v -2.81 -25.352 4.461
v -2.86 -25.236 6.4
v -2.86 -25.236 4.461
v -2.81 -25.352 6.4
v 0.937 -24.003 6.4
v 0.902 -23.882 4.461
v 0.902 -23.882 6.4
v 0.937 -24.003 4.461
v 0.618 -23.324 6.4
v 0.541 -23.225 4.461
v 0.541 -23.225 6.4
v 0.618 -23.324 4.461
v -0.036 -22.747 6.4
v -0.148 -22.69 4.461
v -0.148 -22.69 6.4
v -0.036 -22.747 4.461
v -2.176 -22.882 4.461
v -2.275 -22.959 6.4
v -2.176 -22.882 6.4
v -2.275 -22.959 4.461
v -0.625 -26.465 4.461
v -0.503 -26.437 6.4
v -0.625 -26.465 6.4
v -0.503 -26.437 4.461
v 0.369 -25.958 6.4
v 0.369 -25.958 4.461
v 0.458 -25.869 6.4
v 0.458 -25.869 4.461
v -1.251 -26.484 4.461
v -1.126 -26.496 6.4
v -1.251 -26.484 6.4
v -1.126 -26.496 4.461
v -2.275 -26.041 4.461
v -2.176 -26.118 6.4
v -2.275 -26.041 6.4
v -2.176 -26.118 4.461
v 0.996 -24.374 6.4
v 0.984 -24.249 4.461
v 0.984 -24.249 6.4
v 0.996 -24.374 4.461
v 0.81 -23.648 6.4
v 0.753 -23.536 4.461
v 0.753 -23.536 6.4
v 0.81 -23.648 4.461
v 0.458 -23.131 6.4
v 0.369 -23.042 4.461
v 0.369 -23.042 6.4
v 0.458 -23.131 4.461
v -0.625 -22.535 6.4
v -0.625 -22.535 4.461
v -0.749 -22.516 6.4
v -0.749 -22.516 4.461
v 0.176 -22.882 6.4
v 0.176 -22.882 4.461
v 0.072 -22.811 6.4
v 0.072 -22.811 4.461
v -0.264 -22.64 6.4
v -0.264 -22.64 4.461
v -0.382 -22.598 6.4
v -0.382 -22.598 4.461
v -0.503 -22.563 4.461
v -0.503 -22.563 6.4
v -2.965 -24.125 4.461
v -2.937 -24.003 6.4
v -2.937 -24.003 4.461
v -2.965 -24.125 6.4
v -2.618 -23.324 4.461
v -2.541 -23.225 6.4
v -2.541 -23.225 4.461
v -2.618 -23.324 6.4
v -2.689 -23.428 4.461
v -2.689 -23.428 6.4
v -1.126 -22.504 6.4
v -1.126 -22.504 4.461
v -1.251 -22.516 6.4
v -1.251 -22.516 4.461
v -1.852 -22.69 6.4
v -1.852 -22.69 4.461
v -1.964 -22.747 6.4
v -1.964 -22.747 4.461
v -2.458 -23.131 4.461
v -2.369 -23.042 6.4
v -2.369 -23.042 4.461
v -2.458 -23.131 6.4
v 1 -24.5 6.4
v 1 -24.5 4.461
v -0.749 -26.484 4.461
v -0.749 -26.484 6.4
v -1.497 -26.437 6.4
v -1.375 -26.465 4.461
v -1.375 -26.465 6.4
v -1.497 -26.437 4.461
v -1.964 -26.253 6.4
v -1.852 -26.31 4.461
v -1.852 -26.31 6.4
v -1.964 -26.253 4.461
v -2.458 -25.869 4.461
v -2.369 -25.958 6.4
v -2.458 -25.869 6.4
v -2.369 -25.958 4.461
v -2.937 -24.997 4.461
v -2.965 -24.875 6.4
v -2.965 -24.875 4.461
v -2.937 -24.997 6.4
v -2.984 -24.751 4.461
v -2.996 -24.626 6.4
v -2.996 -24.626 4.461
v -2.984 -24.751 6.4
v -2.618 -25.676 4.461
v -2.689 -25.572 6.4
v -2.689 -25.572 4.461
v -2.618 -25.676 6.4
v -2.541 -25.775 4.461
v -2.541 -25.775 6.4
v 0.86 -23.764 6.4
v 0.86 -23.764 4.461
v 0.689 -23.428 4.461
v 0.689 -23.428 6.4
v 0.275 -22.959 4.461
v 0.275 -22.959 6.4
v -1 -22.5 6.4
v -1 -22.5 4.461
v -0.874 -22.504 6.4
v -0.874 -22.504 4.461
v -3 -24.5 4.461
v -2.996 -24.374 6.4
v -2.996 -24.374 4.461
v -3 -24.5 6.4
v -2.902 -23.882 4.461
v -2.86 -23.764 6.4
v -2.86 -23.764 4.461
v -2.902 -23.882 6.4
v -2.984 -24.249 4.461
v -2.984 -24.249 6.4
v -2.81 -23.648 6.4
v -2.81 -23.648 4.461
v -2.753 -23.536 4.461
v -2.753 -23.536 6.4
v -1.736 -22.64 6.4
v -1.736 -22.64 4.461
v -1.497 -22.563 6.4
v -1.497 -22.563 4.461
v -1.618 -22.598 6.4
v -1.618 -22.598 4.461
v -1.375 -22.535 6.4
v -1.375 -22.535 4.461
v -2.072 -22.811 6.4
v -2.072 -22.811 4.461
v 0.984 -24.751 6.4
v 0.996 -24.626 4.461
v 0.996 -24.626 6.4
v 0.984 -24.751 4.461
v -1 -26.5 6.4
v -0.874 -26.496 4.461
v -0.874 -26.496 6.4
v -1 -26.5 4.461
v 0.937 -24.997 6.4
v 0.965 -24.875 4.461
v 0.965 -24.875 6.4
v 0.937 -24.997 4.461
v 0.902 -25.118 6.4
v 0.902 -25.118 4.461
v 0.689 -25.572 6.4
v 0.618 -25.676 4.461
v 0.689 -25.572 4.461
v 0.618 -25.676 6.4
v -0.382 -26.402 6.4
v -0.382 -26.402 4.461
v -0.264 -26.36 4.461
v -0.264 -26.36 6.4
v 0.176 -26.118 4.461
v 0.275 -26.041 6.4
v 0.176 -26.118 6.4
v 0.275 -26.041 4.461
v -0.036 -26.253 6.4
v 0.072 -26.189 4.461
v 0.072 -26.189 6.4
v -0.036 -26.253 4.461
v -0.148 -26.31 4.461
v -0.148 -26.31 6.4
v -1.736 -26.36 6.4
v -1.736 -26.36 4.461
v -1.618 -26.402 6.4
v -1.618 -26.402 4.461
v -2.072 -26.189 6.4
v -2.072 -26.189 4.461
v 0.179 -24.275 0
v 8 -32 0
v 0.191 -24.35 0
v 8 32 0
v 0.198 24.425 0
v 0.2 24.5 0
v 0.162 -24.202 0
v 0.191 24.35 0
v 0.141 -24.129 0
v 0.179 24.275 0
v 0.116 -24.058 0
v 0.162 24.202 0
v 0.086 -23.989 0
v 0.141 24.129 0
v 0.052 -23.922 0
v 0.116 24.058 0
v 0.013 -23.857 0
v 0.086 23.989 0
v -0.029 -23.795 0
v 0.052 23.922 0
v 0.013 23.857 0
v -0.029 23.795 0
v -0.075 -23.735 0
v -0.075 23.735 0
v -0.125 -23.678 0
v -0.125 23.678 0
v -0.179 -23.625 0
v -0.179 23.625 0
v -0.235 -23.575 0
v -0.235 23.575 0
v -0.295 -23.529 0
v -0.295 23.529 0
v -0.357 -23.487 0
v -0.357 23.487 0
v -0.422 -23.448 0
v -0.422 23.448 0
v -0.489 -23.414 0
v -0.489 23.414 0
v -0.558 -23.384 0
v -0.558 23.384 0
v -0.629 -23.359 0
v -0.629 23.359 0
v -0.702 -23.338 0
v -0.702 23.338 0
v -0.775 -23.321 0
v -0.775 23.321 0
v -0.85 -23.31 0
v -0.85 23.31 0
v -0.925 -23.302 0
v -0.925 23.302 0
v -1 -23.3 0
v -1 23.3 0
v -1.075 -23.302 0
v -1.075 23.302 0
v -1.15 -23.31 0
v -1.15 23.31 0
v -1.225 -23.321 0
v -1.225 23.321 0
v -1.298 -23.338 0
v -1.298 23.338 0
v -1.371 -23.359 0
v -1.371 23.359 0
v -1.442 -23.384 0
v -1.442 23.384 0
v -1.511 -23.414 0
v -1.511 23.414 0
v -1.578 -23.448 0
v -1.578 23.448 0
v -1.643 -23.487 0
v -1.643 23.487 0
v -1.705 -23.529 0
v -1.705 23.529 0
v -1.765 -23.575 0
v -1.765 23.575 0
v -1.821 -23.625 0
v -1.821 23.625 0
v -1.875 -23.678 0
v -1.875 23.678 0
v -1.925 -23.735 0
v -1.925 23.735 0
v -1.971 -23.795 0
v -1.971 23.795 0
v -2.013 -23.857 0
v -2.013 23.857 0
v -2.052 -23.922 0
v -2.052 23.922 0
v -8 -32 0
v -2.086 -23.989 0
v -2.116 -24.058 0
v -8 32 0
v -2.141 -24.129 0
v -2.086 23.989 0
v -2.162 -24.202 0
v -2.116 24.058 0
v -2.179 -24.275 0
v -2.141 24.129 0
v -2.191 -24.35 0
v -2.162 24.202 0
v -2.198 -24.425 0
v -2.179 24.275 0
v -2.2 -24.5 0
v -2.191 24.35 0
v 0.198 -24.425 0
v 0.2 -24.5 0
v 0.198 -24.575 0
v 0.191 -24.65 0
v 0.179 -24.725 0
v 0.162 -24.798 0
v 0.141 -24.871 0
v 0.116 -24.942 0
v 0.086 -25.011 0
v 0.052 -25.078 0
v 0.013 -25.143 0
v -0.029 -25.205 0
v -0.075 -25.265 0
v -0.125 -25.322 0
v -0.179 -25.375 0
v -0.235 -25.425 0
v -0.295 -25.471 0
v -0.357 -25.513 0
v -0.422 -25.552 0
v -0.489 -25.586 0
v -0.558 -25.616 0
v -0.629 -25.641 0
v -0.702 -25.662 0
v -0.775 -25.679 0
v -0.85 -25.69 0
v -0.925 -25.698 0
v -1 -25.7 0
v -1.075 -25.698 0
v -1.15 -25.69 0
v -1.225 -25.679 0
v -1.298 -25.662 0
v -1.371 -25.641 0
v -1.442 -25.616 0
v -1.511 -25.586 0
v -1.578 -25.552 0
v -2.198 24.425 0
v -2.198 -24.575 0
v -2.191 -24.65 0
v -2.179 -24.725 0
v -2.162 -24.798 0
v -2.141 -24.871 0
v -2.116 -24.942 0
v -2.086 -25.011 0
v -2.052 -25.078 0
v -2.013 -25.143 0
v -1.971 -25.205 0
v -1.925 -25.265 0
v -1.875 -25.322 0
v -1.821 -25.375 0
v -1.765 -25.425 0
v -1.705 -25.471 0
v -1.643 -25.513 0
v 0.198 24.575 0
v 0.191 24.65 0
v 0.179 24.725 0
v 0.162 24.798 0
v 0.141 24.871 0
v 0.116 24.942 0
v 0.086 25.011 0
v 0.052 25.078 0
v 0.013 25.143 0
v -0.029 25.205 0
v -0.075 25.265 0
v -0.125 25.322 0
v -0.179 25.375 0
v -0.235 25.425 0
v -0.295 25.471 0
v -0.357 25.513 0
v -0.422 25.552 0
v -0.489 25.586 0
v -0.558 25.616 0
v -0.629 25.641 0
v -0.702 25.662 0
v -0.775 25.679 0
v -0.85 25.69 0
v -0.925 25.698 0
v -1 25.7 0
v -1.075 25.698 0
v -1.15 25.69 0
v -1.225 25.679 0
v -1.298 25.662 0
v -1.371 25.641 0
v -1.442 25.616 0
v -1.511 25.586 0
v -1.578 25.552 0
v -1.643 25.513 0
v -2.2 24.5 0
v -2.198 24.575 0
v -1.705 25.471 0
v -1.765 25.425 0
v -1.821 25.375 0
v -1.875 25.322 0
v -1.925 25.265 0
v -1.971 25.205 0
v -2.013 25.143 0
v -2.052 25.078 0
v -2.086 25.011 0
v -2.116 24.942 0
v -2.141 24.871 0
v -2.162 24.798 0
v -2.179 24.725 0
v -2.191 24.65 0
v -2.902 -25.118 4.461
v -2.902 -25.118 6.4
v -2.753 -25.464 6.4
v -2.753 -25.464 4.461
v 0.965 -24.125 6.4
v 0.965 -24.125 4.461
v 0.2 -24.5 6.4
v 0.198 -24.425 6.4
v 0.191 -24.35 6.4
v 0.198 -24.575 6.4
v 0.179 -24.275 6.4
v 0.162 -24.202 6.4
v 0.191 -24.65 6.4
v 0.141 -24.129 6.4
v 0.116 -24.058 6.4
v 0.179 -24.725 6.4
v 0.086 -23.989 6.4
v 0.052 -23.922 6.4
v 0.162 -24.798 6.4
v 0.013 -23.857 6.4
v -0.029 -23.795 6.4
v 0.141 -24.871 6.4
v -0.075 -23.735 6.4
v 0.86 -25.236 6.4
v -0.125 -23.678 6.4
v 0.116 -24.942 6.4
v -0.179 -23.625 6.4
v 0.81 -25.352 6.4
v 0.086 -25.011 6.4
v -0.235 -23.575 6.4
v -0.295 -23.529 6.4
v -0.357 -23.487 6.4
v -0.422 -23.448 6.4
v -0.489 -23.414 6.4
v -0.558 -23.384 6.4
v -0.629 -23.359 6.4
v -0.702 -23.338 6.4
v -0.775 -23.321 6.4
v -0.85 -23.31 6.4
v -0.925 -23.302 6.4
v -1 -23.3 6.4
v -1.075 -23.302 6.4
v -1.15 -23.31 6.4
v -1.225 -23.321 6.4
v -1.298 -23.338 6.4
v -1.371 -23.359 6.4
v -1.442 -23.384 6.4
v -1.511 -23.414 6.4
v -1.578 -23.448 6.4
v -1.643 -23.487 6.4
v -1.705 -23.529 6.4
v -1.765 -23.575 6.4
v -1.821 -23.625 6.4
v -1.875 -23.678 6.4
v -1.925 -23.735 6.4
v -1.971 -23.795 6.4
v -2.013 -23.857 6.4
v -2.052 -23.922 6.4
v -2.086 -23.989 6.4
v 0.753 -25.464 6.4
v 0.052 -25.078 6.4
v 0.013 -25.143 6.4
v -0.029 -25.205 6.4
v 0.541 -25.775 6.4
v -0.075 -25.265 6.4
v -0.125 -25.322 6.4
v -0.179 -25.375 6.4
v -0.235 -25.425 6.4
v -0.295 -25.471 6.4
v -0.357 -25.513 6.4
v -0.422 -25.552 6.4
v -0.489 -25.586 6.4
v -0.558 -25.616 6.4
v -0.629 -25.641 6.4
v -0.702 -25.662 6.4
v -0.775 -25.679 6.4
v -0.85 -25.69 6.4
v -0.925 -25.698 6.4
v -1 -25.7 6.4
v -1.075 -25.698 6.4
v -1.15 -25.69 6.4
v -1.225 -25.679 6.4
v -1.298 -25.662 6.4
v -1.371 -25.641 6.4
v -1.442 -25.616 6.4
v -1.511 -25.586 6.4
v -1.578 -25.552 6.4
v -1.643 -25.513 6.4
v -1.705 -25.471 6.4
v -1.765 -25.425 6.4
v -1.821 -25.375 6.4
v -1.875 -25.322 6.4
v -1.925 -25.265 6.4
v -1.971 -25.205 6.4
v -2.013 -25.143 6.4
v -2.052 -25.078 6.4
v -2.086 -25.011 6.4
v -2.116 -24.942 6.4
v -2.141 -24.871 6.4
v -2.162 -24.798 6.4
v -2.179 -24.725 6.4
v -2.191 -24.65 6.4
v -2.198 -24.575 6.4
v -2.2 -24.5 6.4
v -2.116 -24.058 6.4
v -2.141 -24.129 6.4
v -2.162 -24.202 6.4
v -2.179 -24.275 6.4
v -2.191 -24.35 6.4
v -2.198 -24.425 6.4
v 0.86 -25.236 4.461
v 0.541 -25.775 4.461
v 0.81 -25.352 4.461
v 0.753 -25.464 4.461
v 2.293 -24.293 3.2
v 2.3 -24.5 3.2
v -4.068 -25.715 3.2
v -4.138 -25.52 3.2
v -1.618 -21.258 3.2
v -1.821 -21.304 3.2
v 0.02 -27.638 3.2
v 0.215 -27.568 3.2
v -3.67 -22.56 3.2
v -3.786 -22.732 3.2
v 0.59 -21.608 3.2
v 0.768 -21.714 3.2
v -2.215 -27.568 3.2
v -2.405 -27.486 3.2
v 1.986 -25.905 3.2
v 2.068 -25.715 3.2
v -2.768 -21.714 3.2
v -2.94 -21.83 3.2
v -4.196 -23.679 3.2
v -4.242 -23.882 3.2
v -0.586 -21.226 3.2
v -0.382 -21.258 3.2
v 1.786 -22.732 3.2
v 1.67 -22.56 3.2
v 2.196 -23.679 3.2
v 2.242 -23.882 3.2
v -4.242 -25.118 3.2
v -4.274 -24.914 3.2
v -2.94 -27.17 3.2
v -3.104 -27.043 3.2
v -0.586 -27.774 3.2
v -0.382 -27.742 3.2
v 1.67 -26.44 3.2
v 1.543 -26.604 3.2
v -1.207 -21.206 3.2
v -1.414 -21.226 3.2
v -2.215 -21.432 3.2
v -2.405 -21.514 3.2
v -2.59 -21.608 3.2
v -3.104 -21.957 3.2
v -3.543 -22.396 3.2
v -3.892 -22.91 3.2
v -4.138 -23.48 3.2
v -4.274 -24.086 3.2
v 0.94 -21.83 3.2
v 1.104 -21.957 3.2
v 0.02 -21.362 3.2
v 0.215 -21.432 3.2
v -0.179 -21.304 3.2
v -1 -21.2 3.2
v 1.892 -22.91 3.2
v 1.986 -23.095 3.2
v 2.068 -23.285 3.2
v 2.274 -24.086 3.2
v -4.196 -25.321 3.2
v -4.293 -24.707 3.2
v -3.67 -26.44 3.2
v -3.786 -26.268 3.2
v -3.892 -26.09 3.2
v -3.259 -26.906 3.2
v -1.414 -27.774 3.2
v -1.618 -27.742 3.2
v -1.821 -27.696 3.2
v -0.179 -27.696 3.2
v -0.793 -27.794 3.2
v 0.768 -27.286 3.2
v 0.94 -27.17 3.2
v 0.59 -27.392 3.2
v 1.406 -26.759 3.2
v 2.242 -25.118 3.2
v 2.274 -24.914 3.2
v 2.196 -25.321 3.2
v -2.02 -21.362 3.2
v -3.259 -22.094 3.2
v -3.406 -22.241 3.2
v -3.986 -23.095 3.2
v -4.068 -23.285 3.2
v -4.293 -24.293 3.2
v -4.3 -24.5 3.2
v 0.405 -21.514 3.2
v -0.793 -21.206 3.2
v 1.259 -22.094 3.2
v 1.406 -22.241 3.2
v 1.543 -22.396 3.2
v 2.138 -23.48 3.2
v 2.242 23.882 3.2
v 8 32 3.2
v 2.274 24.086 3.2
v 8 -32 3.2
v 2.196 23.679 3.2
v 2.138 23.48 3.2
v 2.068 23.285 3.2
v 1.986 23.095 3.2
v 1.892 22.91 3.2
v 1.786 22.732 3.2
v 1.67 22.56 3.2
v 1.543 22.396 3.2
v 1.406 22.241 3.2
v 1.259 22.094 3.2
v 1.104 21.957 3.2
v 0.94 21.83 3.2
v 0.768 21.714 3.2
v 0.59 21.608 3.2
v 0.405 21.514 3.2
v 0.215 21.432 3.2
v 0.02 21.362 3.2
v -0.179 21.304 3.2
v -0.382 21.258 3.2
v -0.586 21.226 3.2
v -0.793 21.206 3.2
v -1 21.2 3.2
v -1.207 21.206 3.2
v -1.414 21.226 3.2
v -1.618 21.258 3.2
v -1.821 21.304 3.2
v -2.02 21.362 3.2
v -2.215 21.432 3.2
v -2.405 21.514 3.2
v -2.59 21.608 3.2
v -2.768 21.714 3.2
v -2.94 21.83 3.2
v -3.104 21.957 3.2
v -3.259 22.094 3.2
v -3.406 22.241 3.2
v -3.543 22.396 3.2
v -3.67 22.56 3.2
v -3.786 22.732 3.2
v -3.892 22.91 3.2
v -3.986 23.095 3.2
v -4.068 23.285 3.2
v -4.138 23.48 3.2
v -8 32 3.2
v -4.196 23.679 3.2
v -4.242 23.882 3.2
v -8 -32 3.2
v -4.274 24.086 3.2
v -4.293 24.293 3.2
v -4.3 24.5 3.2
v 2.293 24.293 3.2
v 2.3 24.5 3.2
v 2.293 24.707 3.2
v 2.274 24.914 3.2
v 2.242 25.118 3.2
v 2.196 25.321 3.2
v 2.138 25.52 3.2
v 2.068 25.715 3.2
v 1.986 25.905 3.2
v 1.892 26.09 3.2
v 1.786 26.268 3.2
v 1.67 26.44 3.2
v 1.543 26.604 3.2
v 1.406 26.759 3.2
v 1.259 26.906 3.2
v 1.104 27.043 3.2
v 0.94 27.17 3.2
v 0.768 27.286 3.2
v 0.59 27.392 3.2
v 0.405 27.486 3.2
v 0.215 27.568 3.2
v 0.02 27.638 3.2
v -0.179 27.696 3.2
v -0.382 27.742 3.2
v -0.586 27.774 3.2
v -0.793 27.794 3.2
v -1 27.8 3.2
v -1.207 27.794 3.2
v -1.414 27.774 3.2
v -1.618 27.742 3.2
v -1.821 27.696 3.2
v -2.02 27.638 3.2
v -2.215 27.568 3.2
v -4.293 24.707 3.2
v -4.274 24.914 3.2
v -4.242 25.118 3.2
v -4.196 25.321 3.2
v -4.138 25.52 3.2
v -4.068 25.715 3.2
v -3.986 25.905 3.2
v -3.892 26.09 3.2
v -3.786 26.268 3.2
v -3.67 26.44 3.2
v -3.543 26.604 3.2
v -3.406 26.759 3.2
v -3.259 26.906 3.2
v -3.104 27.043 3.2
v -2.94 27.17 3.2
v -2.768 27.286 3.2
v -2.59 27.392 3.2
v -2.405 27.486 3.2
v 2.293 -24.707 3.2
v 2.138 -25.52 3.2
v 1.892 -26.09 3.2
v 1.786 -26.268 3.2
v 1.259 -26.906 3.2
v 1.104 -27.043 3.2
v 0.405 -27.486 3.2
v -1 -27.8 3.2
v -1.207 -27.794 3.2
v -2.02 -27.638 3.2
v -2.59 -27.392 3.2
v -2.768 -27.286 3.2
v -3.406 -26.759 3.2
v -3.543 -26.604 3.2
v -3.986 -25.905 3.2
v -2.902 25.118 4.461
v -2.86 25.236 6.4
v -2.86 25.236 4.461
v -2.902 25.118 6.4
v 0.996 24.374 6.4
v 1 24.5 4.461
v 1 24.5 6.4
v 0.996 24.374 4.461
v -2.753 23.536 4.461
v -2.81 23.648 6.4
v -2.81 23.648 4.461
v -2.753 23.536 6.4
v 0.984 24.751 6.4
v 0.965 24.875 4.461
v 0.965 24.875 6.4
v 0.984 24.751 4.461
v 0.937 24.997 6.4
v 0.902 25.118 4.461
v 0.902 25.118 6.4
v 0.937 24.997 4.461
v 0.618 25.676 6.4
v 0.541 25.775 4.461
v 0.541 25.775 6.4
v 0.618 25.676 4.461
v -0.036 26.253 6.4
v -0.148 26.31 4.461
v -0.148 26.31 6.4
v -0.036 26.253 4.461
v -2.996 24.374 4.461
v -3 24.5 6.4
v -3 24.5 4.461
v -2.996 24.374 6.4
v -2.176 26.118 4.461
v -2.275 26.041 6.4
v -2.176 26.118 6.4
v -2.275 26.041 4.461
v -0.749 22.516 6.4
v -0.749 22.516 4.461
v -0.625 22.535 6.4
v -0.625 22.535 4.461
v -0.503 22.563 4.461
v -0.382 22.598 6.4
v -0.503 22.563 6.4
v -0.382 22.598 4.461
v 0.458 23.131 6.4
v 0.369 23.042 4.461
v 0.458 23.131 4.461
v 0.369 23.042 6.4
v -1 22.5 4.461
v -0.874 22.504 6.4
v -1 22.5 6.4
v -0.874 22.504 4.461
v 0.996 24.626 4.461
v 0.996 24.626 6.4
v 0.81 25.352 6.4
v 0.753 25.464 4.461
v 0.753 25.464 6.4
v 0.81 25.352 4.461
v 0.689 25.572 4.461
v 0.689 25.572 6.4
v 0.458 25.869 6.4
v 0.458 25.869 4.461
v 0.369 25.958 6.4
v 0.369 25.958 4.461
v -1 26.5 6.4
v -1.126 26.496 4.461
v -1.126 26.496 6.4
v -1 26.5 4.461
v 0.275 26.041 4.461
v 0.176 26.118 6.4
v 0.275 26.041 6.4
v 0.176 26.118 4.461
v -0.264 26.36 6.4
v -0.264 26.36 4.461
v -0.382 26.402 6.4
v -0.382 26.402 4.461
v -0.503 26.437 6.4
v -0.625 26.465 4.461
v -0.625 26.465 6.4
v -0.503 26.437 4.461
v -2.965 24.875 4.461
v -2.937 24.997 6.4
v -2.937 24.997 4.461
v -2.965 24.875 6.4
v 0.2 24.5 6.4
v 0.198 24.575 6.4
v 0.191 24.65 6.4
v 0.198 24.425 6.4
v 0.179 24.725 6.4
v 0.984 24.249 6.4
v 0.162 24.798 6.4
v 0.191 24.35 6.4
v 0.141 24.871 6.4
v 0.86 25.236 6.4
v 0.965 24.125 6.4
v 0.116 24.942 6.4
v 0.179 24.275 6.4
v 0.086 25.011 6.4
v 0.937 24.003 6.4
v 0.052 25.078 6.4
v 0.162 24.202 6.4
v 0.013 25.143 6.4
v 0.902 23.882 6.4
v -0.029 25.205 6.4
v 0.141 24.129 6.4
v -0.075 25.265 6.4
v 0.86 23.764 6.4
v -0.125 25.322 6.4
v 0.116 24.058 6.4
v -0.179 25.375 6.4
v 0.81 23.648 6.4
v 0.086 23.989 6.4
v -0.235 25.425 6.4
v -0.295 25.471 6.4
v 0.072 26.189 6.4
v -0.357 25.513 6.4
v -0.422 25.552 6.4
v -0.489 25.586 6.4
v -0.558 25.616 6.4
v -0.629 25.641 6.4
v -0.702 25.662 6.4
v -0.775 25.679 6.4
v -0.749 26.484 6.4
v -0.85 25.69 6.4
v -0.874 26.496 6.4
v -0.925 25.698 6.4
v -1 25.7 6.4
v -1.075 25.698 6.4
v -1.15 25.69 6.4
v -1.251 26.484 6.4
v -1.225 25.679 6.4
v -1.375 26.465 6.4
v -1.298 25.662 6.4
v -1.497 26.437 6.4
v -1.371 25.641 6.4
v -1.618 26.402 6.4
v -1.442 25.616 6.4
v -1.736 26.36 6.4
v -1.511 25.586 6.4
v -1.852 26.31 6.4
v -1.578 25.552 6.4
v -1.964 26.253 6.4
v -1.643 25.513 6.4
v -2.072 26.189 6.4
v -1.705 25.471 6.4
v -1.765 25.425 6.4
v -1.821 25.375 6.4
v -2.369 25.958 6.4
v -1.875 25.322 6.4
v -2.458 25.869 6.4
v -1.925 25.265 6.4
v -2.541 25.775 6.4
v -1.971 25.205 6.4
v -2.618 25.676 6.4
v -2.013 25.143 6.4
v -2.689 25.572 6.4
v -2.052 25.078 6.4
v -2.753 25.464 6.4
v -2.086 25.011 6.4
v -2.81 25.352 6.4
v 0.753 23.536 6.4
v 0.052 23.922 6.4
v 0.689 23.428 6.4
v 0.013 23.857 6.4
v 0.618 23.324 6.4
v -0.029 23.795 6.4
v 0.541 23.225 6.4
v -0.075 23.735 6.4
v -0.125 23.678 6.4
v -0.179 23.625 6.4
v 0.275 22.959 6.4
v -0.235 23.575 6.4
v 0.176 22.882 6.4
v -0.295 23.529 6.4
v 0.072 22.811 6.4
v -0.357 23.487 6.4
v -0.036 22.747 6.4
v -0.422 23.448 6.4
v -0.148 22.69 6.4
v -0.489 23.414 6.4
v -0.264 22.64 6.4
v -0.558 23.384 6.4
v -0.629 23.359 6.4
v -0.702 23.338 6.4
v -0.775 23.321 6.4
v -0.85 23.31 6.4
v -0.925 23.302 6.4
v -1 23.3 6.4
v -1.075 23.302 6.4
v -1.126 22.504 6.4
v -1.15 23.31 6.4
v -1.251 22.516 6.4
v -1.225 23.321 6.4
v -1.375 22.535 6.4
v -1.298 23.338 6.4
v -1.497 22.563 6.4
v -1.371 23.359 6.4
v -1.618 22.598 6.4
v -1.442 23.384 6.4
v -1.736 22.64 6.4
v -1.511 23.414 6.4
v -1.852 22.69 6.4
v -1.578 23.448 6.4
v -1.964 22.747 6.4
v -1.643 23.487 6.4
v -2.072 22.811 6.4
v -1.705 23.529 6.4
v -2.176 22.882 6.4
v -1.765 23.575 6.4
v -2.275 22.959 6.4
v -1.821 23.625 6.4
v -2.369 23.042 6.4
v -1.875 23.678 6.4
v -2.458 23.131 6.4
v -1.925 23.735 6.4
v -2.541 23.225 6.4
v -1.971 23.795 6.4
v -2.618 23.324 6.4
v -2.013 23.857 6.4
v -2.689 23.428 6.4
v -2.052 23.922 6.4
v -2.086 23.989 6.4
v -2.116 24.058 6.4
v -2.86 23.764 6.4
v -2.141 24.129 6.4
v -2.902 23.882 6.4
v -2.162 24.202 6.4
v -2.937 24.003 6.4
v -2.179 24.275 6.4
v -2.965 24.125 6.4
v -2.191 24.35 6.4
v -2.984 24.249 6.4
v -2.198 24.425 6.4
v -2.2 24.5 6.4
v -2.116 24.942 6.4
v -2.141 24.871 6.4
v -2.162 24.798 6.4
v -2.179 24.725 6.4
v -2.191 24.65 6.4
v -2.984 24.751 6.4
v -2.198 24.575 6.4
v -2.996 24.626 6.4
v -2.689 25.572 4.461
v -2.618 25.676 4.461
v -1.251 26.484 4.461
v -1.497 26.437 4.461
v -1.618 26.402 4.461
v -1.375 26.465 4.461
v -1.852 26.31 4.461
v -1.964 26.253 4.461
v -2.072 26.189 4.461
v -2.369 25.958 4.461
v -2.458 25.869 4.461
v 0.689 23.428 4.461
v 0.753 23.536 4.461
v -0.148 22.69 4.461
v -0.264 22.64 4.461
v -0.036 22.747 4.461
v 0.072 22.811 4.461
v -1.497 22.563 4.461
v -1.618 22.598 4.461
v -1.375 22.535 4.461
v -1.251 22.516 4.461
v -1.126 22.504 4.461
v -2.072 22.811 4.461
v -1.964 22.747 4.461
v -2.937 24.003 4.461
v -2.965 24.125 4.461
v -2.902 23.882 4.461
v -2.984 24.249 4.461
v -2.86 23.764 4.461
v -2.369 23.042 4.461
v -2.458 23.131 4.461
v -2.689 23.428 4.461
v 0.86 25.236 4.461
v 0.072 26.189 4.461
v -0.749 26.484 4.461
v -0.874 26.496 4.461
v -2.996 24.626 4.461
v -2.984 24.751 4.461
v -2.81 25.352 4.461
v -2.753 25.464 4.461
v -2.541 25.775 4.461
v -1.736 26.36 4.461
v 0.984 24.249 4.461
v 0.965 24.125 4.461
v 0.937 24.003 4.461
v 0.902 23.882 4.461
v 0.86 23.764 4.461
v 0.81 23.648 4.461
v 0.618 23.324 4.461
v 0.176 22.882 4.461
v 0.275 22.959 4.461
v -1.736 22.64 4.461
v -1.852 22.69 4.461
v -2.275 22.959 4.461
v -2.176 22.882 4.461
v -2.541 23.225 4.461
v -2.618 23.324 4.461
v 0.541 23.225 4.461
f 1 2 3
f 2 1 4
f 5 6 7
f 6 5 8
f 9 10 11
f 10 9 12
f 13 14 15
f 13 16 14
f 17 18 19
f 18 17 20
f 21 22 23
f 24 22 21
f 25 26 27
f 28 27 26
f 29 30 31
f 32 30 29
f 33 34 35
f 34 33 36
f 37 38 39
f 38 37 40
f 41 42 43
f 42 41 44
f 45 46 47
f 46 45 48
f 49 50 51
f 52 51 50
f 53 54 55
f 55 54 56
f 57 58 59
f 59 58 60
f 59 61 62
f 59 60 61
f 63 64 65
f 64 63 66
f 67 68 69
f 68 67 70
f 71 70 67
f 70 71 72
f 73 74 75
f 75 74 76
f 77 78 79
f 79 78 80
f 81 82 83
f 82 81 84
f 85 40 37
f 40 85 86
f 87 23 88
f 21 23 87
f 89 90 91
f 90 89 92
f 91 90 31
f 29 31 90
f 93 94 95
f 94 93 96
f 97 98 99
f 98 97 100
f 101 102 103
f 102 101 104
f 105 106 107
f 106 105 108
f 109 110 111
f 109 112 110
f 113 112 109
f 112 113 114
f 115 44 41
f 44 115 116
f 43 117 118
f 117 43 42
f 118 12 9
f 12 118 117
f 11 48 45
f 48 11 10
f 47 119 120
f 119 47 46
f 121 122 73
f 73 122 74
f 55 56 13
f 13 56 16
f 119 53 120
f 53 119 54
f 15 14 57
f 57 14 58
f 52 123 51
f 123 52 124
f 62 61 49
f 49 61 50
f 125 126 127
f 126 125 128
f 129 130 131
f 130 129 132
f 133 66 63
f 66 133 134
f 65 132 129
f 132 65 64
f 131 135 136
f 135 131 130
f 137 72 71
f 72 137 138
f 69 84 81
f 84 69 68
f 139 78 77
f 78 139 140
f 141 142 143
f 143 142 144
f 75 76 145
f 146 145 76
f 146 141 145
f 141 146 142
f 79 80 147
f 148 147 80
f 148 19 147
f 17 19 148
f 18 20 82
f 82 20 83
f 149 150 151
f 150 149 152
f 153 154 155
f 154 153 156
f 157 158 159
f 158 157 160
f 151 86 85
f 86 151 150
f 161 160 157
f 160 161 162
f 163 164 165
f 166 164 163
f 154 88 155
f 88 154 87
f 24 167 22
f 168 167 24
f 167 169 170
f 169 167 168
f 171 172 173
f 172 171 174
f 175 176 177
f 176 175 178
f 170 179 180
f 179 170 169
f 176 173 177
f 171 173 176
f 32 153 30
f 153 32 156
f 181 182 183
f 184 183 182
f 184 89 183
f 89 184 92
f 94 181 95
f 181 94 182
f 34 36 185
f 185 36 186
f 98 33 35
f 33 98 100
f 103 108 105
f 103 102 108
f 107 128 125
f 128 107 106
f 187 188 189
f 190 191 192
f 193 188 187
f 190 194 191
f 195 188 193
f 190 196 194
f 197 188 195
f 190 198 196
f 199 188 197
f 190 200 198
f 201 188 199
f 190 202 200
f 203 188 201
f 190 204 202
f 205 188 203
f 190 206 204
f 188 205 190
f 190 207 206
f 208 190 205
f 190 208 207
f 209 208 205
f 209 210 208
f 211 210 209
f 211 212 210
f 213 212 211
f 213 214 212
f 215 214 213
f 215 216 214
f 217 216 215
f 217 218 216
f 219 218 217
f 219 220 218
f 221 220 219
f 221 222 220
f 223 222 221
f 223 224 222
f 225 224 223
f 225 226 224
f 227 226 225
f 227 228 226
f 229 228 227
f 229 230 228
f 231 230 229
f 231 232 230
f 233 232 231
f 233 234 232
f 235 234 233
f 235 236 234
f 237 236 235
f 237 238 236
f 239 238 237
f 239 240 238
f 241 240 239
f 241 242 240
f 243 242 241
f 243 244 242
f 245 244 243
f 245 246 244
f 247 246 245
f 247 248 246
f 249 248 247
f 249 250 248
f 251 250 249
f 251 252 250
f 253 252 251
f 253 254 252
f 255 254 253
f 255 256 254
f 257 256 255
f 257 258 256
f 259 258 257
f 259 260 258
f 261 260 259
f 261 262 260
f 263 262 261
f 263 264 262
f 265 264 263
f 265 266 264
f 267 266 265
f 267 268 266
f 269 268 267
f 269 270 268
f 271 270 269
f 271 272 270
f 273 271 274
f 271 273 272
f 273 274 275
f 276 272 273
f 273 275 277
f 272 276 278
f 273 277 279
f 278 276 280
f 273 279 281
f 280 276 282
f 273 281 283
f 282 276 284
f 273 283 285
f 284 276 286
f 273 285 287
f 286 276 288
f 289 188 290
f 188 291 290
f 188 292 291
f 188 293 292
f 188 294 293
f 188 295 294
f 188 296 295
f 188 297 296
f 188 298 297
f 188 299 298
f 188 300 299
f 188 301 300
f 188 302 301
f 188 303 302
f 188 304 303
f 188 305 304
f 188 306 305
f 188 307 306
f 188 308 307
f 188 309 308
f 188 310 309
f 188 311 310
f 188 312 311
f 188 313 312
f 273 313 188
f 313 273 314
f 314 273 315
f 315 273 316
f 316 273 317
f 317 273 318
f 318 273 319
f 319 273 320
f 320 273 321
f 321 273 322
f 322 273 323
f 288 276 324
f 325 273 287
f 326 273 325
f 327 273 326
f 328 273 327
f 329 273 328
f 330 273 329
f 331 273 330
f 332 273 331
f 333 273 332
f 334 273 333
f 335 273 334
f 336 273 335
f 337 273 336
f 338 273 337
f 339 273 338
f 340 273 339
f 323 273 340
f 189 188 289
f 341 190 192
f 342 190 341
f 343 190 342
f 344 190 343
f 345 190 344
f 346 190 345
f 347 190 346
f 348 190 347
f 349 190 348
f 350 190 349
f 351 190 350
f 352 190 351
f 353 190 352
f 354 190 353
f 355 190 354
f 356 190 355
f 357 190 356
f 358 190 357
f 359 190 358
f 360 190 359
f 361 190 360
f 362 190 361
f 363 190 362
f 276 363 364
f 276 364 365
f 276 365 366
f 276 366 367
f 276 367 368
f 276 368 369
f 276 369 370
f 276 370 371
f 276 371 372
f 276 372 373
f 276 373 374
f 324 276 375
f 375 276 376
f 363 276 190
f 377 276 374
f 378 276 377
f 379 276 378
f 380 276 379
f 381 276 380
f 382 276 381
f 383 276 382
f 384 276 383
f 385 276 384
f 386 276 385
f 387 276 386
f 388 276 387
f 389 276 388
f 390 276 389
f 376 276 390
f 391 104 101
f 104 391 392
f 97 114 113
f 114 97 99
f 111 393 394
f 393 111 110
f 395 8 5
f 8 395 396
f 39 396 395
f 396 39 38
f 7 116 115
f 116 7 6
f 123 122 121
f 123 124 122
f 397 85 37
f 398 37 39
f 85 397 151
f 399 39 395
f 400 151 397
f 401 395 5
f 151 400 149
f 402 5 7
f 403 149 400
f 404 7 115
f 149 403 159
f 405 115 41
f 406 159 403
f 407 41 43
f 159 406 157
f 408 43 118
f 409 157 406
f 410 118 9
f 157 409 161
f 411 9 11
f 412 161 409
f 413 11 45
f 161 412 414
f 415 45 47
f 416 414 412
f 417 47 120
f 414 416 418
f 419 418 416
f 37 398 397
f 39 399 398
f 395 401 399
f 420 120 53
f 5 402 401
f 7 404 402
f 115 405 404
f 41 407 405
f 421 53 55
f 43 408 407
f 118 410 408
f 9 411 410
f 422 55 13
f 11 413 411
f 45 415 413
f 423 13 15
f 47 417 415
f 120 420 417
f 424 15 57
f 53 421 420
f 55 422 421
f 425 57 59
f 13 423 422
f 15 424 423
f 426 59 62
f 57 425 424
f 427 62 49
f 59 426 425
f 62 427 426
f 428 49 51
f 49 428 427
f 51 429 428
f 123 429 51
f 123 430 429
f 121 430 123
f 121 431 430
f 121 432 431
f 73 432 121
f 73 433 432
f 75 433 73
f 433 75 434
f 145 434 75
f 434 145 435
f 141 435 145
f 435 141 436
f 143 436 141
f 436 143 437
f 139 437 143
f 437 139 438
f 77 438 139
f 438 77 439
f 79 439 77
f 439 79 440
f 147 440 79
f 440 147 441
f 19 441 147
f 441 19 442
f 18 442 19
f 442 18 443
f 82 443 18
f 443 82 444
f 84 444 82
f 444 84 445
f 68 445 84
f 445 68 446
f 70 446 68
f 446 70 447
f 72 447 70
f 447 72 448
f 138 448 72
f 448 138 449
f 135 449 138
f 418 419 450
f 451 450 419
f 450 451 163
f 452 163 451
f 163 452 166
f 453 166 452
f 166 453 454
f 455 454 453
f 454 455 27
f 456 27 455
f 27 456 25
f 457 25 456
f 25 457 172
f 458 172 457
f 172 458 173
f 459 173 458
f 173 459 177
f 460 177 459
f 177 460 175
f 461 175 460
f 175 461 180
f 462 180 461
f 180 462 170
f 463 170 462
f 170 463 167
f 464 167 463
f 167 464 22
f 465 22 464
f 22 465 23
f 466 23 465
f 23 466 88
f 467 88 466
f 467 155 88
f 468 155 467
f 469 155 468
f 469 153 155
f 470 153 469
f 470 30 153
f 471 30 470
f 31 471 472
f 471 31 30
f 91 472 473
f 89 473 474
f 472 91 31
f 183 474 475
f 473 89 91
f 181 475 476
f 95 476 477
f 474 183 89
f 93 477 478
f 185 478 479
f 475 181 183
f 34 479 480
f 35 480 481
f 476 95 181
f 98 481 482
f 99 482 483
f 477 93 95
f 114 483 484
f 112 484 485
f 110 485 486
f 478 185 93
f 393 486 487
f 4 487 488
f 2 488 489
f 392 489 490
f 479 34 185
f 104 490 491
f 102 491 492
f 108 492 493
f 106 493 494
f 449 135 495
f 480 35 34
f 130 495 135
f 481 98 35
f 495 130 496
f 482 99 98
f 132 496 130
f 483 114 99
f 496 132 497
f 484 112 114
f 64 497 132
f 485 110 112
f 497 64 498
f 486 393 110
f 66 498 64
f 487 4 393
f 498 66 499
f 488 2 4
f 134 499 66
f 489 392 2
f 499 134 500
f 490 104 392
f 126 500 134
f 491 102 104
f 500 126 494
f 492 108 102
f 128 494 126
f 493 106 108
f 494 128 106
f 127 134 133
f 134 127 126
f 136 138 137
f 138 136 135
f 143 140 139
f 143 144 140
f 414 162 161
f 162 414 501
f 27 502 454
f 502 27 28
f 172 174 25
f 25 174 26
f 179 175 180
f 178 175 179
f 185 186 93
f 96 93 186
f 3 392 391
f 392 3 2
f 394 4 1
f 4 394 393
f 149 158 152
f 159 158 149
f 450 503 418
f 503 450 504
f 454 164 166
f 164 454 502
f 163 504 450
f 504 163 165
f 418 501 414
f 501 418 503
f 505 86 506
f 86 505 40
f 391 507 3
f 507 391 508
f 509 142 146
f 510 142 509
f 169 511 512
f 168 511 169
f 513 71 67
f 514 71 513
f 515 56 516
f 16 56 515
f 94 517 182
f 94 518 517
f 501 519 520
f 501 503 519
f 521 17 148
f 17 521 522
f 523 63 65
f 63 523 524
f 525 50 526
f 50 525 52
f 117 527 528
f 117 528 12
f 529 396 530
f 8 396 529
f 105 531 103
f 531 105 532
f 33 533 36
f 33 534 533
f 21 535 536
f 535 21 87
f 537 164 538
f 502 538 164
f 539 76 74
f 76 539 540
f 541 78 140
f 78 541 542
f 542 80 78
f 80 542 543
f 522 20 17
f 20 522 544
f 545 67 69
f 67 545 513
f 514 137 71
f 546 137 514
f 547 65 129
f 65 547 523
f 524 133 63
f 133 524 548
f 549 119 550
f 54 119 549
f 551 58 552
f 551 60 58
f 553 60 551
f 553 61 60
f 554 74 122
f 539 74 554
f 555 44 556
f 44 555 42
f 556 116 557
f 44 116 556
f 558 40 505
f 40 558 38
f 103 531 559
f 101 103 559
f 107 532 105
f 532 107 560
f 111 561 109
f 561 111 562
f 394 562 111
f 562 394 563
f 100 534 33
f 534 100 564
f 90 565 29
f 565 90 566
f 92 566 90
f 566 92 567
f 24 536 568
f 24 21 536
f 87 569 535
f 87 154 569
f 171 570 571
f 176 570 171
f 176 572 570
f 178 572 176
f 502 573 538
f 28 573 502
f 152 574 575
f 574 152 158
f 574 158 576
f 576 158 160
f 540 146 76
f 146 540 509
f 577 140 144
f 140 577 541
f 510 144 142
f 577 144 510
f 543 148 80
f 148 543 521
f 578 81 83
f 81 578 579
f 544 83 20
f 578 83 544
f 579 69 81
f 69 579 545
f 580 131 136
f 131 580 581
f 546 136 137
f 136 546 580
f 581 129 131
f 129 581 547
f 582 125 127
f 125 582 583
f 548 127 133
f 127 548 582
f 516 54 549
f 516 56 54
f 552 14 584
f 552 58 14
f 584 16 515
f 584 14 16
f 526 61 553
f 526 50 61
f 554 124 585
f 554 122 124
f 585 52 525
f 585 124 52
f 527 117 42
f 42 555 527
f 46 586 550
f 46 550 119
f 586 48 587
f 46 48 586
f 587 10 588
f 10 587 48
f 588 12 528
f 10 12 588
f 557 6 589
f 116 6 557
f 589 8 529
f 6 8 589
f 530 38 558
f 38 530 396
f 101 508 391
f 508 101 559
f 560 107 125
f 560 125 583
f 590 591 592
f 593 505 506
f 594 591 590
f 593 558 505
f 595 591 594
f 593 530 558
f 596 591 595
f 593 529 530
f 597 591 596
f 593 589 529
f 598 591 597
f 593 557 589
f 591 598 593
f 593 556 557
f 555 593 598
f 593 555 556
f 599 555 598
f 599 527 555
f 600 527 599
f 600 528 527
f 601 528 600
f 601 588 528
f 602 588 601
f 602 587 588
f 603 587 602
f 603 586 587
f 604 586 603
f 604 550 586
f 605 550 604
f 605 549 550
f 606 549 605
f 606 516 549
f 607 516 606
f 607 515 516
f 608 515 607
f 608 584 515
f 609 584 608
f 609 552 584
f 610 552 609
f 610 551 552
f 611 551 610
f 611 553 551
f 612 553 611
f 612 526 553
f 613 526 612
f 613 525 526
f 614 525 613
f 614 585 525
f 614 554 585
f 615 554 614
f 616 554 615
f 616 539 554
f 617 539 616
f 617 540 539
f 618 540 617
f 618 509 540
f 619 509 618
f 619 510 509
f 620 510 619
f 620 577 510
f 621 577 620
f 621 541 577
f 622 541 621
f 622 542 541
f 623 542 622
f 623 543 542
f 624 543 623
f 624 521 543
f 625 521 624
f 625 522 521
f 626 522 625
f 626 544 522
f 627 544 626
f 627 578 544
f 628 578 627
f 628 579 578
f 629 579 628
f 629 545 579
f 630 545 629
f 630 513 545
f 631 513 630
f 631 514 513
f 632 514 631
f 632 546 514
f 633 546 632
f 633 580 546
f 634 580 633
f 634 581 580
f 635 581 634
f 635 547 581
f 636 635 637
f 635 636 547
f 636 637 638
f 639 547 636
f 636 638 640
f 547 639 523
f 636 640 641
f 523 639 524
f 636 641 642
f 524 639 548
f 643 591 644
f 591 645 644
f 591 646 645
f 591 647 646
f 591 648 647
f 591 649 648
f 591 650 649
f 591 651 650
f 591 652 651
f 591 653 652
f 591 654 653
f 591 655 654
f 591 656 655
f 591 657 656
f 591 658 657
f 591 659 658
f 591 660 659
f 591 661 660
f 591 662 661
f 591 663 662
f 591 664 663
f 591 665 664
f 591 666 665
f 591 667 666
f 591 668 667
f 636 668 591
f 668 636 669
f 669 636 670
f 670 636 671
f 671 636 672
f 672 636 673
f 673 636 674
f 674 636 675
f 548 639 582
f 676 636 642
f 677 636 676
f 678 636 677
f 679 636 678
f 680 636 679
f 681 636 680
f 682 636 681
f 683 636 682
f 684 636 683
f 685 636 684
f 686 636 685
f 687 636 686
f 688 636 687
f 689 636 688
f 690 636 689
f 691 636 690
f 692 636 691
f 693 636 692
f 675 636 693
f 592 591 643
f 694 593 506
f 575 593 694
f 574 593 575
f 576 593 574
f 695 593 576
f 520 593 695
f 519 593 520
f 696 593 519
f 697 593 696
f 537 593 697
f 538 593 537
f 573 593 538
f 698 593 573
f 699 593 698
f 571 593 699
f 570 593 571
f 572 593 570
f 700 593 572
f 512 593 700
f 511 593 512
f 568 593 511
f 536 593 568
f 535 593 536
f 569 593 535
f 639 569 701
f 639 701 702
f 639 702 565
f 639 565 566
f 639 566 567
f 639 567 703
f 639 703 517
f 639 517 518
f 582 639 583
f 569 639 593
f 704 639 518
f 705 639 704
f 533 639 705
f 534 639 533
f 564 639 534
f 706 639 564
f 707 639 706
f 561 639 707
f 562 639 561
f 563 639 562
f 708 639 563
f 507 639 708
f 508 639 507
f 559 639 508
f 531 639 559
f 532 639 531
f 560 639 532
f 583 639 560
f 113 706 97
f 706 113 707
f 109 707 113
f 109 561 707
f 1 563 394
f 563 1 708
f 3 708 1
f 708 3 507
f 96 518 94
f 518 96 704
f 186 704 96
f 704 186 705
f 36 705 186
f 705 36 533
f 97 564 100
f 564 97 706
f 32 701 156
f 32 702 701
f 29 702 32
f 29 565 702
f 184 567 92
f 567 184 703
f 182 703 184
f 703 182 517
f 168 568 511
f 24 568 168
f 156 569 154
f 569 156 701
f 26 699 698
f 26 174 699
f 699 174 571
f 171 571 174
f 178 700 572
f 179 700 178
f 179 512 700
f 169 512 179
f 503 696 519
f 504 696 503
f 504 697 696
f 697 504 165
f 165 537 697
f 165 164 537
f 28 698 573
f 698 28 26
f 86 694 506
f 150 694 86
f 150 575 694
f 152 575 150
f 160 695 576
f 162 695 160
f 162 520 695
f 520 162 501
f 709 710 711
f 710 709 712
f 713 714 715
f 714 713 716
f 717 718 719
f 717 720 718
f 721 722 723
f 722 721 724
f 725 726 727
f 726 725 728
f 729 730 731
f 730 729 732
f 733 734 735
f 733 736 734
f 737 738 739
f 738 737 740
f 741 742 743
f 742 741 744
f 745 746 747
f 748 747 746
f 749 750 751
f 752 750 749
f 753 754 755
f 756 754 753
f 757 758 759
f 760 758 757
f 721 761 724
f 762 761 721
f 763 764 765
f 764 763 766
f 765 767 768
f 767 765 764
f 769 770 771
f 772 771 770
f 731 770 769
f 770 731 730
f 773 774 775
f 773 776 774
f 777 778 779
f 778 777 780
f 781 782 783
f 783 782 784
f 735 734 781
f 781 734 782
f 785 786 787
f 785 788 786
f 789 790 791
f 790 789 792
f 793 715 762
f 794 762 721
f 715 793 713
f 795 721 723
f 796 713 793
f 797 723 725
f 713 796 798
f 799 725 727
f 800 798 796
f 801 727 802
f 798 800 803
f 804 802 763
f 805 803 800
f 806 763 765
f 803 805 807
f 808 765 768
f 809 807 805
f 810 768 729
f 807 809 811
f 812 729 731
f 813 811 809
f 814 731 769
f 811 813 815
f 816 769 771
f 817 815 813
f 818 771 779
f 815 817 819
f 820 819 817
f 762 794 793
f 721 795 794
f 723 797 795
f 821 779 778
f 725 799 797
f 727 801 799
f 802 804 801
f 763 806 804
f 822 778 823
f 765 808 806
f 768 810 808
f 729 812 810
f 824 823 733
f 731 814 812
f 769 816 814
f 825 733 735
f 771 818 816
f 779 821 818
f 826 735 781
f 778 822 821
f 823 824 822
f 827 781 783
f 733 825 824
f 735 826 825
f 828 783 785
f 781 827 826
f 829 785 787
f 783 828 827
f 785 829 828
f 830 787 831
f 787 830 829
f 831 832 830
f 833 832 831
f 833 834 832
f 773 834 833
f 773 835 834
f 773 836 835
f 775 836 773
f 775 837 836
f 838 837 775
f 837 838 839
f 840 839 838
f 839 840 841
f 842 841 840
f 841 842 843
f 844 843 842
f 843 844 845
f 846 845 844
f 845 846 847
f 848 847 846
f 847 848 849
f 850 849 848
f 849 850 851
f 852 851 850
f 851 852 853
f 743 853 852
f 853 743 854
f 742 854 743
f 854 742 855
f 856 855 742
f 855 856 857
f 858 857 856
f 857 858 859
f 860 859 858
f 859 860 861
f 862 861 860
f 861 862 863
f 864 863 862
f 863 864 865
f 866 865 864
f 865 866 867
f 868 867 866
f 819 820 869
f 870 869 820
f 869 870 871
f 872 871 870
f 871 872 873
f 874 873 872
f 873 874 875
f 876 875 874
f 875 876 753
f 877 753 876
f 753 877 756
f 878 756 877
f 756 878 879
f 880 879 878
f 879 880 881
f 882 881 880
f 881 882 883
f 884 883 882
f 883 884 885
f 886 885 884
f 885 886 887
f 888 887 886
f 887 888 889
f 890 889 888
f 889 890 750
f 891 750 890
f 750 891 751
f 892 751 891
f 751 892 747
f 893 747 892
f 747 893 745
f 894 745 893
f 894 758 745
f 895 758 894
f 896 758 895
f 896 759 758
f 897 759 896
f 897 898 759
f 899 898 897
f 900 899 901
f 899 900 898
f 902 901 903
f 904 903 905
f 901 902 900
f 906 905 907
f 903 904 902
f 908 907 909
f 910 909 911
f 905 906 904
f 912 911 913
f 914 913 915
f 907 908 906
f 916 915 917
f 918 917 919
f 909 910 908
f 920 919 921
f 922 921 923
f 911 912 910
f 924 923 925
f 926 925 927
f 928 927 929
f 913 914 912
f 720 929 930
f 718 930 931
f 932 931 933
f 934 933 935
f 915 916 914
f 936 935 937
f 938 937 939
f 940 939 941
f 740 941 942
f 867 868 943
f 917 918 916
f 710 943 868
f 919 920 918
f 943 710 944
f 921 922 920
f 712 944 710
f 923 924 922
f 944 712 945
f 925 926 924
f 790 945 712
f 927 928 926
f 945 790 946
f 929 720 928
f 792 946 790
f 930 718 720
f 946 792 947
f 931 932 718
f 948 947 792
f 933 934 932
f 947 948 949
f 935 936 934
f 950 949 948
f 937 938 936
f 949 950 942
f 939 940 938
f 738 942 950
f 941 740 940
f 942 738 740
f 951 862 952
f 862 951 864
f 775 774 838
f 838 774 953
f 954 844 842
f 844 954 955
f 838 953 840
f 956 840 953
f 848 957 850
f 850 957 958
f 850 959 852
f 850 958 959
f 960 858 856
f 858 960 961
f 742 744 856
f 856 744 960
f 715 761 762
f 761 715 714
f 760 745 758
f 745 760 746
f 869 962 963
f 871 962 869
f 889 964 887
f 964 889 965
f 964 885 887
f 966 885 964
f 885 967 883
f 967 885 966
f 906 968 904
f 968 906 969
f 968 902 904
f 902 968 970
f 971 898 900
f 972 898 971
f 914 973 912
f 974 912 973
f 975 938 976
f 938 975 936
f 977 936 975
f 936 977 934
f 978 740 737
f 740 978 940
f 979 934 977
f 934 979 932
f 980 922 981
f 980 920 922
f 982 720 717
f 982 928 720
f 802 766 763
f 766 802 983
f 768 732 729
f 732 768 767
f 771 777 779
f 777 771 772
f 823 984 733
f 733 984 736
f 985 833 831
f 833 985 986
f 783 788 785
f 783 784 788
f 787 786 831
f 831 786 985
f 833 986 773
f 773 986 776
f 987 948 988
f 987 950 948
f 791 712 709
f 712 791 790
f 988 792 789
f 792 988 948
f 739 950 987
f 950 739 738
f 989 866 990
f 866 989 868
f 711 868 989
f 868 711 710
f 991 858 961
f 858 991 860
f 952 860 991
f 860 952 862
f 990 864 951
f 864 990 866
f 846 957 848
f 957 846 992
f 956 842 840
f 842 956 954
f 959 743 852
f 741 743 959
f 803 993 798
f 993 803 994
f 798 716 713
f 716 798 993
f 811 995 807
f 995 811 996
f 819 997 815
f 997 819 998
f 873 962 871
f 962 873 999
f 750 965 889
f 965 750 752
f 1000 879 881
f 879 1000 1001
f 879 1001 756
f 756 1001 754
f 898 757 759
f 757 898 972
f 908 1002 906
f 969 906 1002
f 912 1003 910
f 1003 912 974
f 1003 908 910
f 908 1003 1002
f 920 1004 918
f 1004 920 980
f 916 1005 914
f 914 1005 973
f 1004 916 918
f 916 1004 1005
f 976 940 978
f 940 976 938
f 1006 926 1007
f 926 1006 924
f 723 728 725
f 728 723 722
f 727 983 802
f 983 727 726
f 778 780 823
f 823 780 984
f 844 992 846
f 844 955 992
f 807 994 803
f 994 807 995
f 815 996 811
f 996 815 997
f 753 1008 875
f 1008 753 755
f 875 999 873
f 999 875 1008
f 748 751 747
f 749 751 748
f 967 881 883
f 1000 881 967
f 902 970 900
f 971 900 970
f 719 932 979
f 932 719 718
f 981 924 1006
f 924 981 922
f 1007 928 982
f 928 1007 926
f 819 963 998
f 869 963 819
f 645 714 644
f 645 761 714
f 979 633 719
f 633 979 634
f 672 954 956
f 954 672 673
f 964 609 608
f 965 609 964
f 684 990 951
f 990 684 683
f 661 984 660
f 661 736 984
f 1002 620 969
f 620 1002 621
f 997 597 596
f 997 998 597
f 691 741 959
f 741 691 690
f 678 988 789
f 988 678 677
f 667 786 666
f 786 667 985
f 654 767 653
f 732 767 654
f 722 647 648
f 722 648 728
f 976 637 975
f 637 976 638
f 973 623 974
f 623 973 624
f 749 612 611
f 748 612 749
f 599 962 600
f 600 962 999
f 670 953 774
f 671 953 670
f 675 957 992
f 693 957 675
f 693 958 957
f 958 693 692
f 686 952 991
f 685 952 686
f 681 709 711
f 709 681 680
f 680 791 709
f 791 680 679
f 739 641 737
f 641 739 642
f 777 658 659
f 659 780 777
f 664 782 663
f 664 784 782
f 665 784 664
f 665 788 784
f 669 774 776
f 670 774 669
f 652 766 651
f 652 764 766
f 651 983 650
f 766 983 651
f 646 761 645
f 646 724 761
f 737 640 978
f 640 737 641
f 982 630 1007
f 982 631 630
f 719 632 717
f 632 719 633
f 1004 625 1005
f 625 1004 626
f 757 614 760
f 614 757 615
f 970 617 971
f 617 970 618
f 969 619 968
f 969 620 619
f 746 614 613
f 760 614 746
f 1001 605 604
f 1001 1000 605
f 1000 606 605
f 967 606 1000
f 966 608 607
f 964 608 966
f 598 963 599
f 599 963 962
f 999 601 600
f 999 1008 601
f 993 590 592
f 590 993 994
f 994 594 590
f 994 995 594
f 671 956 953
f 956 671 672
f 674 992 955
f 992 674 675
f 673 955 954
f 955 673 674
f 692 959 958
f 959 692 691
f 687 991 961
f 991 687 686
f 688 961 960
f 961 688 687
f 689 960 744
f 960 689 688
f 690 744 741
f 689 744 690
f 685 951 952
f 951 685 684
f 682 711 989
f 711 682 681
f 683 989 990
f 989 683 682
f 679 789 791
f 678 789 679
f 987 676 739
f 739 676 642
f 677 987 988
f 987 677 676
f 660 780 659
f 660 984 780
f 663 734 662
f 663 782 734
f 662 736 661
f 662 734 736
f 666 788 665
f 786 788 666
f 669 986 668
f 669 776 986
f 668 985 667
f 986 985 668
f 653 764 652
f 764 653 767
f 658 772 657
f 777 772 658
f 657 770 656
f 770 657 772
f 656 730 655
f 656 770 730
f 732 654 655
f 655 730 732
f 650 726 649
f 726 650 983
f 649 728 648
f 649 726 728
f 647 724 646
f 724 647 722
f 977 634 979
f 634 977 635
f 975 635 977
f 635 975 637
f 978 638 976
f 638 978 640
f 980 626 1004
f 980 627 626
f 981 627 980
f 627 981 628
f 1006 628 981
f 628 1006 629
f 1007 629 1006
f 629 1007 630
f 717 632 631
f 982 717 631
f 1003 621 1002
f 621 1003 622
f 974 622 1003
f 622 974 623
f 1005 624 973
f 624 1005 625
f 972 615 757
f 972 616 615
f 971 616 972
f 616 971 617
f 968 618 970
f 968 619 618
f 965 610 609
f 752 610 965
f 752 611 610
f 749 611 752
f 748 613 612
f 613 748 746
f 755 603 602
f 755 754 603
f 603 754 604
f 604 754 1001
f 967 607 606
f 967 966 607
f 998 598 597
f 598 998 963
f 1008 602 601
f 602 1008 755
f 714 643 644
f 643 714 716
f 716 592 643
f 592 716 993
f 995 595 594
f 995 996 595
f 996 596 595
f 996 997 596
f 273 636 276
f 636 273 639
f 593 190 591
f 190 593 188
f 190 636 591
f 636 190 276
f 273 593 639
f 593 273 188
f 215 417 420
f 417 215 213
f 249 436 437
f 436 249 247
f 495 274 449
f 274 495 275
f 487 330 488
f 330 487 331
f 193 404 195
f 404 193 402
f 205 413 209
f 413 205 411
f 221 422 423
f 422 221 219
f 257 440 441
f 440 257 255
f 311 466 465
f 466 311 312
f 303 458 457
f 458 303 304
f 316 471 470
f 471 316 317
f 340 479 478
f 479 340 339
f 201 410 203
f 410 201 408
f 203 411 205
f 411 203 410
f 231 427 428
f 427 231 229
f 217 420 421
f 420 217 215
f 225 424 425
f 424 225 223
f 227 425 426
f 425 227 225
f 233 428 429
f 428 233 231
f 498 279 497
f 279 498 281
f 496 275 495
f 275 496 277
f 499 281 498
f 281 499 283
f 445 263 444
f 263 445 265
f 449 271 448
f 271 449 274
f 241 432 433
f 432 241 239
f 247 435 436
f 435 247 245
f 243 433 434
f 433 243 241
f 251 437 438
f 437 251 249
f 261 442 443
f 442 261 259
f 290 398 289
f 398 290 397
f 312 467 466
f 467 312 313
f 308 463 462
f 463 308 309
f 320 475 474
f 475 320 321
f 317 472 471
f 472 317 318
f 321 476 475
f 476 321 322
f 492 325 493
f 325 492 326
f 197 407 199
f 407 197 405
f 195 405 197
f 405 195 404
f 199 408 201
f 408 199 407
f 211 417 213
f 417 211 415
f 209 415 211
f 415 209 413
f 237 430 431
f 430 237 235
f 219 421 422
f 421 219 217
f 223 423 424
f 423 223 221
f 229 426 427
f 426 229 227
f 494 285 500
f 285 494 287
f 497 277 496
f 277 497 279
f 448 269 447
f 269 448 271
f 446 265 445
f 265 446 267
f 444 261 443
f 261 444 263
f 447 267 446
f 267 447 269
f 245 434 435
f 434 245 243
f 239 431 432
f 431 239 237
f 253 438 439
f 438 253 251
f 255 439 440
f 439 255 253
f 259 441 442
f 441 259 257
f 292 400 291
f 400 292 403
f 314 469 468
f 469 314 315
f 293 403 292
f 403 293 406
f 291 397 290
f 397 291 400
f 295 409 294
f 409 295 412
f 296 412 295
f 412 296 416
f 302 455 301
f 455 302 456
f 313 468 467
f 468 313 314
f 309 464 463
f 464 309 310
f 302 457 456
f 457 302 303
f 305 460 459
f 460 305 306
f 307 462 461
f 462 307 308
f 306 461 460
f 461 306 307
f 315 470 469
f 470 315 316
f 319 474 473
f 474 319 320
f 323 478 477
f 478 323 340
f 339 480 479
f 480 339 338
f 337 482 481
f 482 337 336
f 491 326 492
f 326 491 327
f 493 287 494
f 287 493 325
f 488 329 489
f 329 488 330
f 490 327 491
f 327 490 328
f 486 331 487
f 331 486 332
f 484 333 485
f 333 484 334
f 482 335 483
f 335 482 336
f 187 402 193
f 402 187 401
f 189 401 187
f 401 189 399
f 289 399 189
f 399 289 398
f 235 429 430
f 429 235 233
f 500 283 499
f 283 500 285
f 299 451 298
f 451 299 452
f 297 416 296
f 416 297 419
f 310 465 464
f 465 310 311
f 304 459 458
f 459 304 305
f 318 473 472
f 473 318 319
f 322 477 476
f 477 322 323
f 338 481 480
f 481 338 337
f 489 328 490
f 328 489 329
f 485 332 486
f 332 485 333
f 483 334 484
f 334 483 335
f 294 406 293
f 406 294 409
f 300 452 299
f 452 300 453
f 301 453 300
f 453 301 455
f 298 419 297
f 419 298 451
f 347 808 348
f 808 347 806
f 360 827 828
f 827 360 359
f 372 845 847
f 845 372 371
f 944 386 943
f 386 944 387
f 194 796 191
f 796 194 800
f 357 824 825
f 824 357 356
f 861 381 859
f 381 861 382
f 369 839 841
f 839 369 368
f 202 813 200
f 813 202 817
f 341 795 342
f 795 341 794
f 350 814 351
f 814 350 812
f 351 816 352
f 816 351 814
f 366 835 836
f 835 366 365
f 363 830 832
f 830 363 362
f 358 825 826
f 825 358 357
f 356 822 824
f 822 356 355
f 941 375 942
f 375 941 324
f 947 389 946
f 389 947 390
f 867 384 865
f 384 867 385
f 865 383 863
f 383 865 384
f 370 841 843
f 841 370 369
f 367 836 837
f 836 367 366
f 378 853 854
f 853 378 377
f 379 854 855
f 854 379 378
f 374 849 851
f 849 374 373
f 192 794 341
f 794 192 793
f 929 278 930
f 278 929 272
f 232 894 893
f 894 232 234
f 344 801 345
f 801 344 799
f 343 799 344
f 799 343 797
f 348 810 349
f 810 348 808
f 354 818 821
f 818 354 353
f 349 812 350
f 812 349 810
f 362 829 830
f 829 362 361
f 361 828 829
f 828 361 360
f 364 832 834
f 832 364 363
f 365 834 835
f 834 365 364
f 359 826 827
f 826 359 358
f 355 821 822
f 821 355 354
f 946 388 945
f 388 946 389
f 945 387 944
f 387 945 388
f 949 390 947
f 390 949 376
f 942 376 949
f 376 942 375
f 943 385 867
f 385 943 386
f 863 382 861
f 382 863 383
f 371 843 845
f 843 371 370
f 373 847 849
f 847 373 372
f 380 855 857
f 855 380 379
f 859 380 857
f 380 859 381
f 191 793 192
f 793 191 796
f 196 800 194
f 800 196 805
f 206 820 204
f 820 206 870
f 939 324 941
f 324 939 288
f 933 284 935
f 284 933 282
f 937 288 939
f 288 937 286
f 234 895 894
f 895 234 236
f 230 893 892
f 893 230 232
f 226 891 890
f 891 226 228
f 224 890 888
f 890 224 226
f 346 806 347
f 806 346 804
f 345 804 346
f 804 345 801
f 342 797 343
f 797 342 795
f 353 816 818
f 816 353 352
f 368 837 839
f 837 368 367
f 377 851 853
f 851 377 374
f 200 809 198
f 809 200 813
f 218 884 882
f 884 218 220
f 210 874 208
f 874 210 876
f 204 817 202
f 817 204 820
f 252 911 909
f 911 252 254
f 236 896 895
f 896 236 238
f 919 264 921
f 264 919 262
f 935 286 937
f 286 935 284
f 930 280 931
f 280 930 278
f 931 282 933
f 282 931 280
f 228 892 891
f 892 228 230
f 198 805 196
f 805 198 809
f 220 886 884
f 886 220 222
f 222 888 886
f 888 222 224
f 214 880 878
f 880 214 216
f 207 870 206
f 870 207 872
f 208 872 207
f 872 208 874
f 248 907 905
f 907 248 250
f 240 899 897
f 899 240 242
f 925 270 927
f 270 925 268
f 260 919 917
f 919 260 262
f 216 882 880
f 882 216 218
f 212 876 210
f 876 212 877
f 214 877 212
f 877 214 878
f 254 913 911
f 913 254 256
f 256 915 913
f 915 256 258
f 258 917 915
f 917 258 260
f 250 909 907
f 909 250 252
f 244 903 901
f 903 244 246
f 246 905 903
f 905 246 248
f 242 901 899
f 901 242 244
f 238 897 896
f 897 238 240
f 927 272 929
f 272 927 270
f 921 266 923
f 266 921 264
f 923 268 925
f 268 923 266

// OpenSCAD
/* pi 2 lego connector */

/*
The Raspberrry Pi 3 has 4 holes in a 58mm X 49mm.

*/

MOUNT_WIDTH = 58.0;
MOUNT_HEIGHT = 49.0;

POSITION_X = -MOUNT_WIDTH/2.0;
POSITION_Y = -MOUNT_HEIGHT/2.0;
LABEL = "BL - Pi 3";

$fn = 100;

length = 2;
width = 8;
height = 1;
FLU = 1.6; // Fundamental Lego Unit = 1.6 mm

M = 2.5;

TOTAL_HEIGHT = 3;
PEG_HEIGHT = (TOTAL_HEIGHT - 1) * 2 * FLU;
PEG_RADIUS = 0.75;

BRICK_WIDTH = 5.0 * FLU; // basic brick width

bricks_x = round(POSITION_X / BRICK_WIDTH);
bricks_y = round(POSITION_Y / BRICK_WIDTH);

OFFSET_X = POSITION_X - ((bricks_x + 0.5) * BRICK_WIDTH);
OFFSET_1_Y = POSITION_Y - (bricks_y * BRICK_WIDTH) - ( 3 * BRICK_WIDTH);
OFFSET_2_Y = - OFFSET_1_Y;

echo(OFFSET_1_Y * 2);



union(){

	difference()
	{
        union(){
            translate([OFFSET_X, OFFSET_1_Y, 0]) cylinder(r = 2, h = PEG_HEIGHT);
            translate([OFFSET_X, OFFSET_1_Y, FLU* 2]) cylinder(r1 = 3.3, r2=0, h = FLU* 2);
            translate([OFFSET_X, OFFSET_2_Y, 0]) cylinder(r = 2, h = PEG_HEIGHT);
            translate([OFFSET_X, OFFSET_2_Y, FLU* 2]) cylinder(r1 = 3.3, r2=0, h = FLU * 2);
            
            translate([-length*BRICK_WIDTH/2.0, -width*BRICK_WIDTH/2.0, 0])
                cube([length*BRICK_WIDTH, width*BRICK_WIDTH, FLU * 2]);
        }
		translate([OFFSET_X, OFFSET_1_Y,-1]) cylinder(r = (M/2)-0.05, h = PEG_HEIGHT+2);
        translate([OFFSET_X, OFFSET_2_Y,-1]) cylinder(r = (M/2)-0.05, h = PEG_HEIGHT+2);
	}
    /*
    translate([OFFSET_X, OFFSET_1_Y, 0])
        thread_in(M, PEG_HEIGHT);
    
    translate([OFFSET_X, OFFSET_2_Y, 0])
        thread_in(M, PEG_HEIGHT);*/
}
